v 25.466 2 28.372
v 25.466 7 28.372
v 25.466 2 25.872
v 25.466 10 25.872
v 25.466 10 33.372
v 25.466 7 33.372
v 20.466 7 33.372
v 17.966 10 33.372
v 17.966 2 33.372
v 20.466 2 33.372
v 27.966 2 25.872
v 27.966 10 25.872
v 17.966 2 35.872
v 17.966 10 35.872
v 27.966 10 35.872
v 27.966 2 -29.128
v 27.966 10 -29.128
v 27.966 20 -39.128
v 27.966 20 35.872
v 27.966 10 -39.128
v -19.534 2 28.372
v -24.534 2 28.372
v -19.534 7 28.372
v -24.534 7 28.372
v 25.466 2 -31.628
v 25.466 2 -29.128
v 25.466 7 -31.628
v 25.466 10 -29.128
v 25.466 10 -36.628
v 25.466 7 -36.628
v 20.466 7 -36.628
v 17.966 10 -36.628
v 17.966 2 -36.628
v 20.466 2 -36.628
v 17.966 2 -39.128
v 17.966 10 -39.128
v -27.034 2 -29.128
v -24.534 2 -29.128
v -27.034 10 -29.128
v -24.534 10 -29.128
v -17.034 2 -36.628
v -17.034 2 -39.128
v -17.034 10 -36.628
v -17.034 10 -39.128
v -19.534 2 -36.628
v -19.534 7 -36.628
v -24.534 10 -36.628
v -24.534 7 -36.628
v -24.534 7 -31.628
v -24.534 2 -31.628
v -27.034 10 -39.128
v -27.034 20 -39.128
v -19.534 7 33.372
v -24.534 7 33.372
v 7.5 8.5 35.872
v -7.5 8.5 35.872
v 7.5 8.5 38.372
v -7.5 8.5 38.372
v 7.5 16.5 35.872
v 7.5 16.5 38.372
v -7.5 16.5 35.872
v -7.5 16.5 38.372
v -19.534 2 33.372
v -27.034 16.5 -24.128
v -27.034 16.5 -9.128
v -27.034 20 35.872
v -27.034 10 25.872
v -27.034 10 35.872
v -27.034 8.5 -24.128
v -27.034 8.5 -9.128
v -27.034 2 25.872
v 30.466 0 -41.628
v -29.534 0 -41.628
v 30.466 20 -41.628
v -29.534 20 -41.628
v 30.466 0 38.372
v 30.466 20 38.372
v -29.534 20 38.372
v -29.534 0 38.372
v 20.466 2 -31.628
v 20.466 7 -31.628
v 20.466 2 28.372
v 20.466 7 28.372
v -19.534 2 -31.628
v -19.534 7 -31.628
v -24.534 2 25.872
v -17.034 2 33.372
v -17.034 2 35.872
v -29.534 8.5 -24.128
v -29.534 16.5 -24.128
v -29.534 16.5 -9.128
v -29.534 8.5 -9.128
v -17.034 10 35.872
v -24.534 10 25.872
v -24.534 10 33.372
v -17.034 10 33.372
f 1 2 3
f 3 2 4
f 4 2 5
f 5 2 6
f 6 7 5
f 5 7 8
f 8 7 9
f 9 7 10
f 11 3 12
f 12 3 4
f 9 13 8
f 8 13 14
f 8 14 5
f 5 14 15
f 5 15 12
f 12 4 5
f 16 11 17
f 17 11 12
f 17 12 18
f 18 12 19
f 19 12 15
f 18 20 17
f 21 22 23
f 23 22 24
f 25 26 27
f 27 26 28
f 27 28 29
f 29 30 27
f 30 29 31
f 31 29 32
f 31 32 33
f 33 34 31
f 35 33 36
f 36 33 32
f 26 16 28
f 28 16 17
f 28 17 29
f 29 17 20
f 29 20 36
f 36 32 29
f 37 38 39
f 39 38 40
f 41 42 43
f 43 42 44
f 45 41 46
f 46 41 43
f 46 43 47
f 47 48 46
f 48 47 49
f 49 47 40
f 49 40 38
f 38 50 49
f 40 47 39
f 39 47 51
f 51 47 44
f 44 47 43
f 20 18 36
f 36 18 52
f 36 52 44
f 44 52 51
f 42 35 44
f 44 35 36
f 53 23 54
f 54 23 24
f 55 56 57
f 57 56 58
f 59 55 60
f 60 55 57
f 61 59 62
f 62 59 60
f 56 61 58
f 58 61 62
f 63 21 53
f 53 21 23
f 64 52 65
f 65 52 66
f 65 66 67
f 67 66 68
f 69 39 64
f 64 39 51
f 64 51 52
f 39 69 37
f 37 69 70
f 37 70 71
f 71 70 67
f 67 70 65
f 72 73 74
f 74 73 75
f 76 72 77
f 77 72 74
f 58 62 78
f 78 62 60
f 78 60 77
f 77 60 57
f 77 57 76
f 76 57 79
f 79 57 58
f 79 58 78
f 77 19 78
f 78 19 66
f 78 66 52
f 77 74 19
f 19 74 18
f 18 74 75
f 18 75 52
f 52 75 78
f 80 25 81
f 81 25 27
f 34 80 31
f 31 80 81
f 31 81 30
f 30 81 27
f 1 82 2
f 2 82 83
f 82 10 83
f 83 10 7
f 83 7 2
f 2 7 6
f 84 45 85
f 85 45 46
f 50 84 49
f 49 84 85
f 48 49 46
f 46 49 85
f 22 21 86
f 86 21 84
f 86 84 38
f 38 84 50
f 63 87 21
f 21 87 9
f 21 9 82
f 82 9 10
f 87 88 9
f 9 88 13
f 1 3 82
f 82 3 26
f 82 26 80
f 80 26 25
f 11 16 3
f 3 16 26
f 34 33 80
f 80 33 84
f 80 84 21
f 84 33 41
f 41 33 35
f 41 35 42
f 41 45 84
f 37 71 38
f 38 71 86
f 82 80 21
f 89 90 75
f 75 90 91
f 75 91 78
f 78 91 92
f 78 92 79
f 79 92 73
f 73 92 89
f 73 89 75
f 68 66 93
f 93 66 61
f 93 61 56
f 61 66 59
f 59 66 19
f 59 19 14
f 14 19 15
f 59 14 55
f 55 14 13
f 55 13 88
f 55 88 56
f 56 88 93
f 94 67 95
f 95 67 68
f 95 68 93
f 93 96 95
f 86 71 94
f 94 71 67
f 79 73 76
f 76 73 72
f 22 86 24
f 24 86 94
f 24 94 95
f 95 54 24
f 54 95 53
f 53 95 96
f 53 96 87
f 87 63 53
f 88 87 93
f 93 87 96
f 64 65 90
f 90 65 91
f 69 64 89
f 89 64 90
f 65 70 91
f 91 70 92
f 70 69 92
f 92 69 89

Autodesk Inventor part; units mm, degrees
ref_plane "YZ Plane" through (0, 0, 0) normal (1, 0, 0) x (0, 1, 0)
ref_plane "XZ Plane" through (0, 0, 0) normal (0, 1, 0) x (-1, 0, 0)
ref_plane "XY Plane" through (0, 0, 0) normal (0, 0, 1) x (1, 0, 0)
sketch "Sketch1" plane through (0, 0, 0) normal (0, 1, 0) x (-1, 0, 0)
  line L0 (27.0344, 35.8723) -> (-27.9656, 35.8723)
  line L1 (27.0344, 35.8723) -> (27.0344, -39.1277)
  line L2 (27.0344, -39.1277) -> (-27.9656, -39.1277)
  line L3 (-27.9656, -39.1277) -> (-27.9656, 35.8723)
  line L4 (24.5344, 33.3723) -> (22.0344, 33.3723)
  line L5 (-25.4656, -36.6277) -> (-22.9656, -36.6277)
  line L6 (-25.4656, -36.6277) -> (-25.4656, -34.1277)
  line L7 (24.5344, -36.6277) -> (22.0344, -36.6277)
  line L8 (24.5344, -36.6277) -> (24.5344, -34.1277)
  line L9 (24.5344, 30.8723) -> (24.5344, 33.3723)
  line L10 (22.0344, 33.3723) -> (19.5344, 33.3723)
  line L11 (24.5344, 30.8723) -> (24.5344, 28.3723)
  line L12 (24.5344, 28.3723) -> (19.5344, 28.3723)
  line L13 (19.5344, 28.3723) -> (19.5344, 33.3723)
  line L14 (-20.4656, 33.3723) -> (-20.4656, 28.3723)
  line L15 (-20.4656, 28.3723) -> (-25.4656, 28.3723)
  line L16 (22.0344, -36.6277) -> (19.5344, -36.6277)
  line L17 (19.5344, -36.6277) -> (19.5344, -31.6277)
  line L18 (19.5344, -31.6277) -> (24.5344, -31.6277)
  line L19 (24.5344, -31.6277) -> (24.5344, -34.1277)
  line L20 (-22.9656, -36.6277) -> (-20.4656, -36.6277)
  line L21 (-20.4656, -36.6277) -> (-20.4656, -31.6277)
  line L22 (-20.4656, -31.6277) -> (-25.4656, -31.6277)
  line L23 (-25.4656, -31.6277) -> (-25.4656, -34.1277)
  line L24 (-30.4656, -41.6277) -> (-30.4656, 38.3723)
  line L25 (-30.4656, -41.6277) -> (29.5344, -41.6277)
  line L26 (29.5344, -41.6277) -> (29.5344, 38.3723)
  line L27 (29.5344, 38.3723) -> (-30.4656, 38.3723)
  line L28 (-20.4656, 33.3723) -> (-25.4656, 33.3723)
  line L29 (-25.4656, 33.3723) -> (-25.4656, 28.3723)
  point P0 (0, 0)
  dimension "d1" = 55
  dimension "d2" = 75
  dimension "d34" = 80
  dimension "d35" = 60
  dimension "d36" = 5
extrude "Extrusion1" add sketch "Sketch1" along normal blind 2 contours L1 L2 L3 L0
extrude "Extrusion2" add sketch "Sketch1" along normal blind 7 contours L9 L11 L12 L13 L10 L4 | L6 L23 L22 L21 L20 L5 | L7 L16 L17 L18 L19 L8 | L14 L15 L29 L28
extrude "Extrusion3" add sketch "Sketch1" along normal blind 20 contours L24 L27 L26 L25
sketch "Sketch2" plane through (-29.5344, 0, 38.3723) normal (0, 0, 1) x (1, 0, 0)
  line L0 (55, 7) -> (50, 7) projected
  line L1 (52.5, 7) -> (52.5, 8.5)
  line L2 (10, 7) -> (5, 7) projected
  line L3 (5, 7) -> (5, 8.5)
  line L4 (29.5344, 8.5) -> (37.0344, 8.5)
  line L5 (37.0344, 8.5) -> (37.0344, 16.5)
  line L6 (37.0344, 16.5) -> (22.0344, 16.5)
  line L7 (22.0344, 16.5) -> (22.0344, 8.5)
  line L8 (22.0344, 8.5) -> (29.5344, 8.5)
  point P0 (29.5344, 0)
  dimension "d43" = 1.5
extrude "Extrusion4" cut sketch "Sketch2" against normal blind 10
sketch "Sketch3" plane through (0, 2, 0) normal (0, 1, 0) x (1, 0, 0)
  line L0 (-24.5344, 36.6277) -> (-19.5344, 36.6277) projected
  line L1 (-17.0344, 36.6277) -> (-17.0344, 39.1277)
  line L2 (27.9656, 39.1277) -> (-27.0344, 39.1277) projected
  line L3 (-17.0344, 39.1277) -> (-27.0344, 39.1277)
  line L4 (-24.5344, 29.1277) -> (-27.0344, 29.1277)
  line L5 (-27.0344, 39.1277) -> (-27.0344, -35.8723) projected
  line L6 (-27.0344, 29.1277) -> (-27.0344, 39.1277)
  line L7 (-24.5344, 36.6277) -> (-24.5344, 31.6277) projected
  line L8 (-17.0344, 36.6277) -> (-24.5344, 36.6277)
  line L9 (-24.5344, 36.6277) -> (-24.5344, 29.1277)
  line L10 (27.9656, 39.1277) -> (17.9656, 39.1277)
  line L11 (27.9656, 39.1277) -> (27.9656, 29.1277)
  line L12 (27.9656, -35.8723) -> (27.9656, 39.1277) projected
  line L13 (17.9656, 39.1277) -> (17.9656, 36.6277)
  line L14 (25.4656, 36.6277) -> (20.4656, 36.6277) projected
  line L15 (17.9656, 36.6277) -> (25.4656, 36.6277)
  line L16 (25.4656, 36.6277) -> (25.4656, 29.1277)
  line L17 (25.4656, 29.1277) -> (27.9656, 29.1277)
  line L18 (-27.0344, -35.8723) -> (27.9656, -35.8723) projected
  line L19 (27.9656, -35.8723) -> (27.9656, -25.8723)
  line L20 (27.9656, -35.8723) -> (17.9656, -35.8723)
  line L21 (20.4656, -33.3723) -> (25.4656, -33.3723) projected
  line L22 (27.9656, -25.8723) -> (25.4656, -25.8723)
  line L23 (25.4656, -28.3723) -> (25.4656, -33.3723) projected
  line L24 (25.4656, -25.8723) -> (25.4656, -33.3723)
  line L25 (17.9656, -35.8723) -> (17.9656, -33.3723)
  line L26 (25.4656, -33.3723) -> (20.4656, -33.3723) projected
  line L27 (17.9656, -33.3723) -> (25.4656, -33.3723)
  line L28 (-27.0344, -35.8723) -> (-27.0344, -25.8723)
  line L29 (-27.0344, -35.8723) -> (-17.0344, -35.8723)
  line L30 (-17.0344, -35.8723) -> (-17.0344, -33.3723)
  line L31 (-17.0344, -33.3723) -> (-24.5344, -33.3723)
  line L32 (-24.5344, -33.3723) -> (-24.5344, -25.8723)
  line L33 (-24.5344, -25.8723) -> (-27.0344, -25.8723)
  point P0 (0, 0)
extrude "Extrusion5" add sketch "Sketch3" along normal blind 8 contours L7 L9 L4 L5 L2 L1 L8 L0
extrude "Extrusion6" add sketch "Sketch3" along normal blind 8 contours L2 L11 L17 L16 L14 L15 L13
extrude "Extrusion7" add sketch "Sketch3" along normal blind 8 contours L12 L18 L25 L27 L21 L23 L24 L22
extrude "Extrusion8" add sketch "Sketch3" along normal blind 8 contours L33 L32 L31 L30 L18 L5
sketch "Sketch4" plane through (-29.5344, 0, -41.6277) normal (-1, 0, 0) x (0, 0, 1)
  line L0 (0, 0) -> (0, 20) projected
  line L1 (17.5, 8.5) -> (17.5, 16.5)
  line L2 (17.5, 16.5) -> (32.5, 16.5)
  line L3 (32.5, 16.5) -> (32.5, 8.5)
  line L4 (17.5, 8.5) -> (32.5, 8.5)
  point P0 (41.6277, 0)
extrude "Extrusion9" cut sketch "Sketch4" against normal blind 5
properties part number "Caixa"
